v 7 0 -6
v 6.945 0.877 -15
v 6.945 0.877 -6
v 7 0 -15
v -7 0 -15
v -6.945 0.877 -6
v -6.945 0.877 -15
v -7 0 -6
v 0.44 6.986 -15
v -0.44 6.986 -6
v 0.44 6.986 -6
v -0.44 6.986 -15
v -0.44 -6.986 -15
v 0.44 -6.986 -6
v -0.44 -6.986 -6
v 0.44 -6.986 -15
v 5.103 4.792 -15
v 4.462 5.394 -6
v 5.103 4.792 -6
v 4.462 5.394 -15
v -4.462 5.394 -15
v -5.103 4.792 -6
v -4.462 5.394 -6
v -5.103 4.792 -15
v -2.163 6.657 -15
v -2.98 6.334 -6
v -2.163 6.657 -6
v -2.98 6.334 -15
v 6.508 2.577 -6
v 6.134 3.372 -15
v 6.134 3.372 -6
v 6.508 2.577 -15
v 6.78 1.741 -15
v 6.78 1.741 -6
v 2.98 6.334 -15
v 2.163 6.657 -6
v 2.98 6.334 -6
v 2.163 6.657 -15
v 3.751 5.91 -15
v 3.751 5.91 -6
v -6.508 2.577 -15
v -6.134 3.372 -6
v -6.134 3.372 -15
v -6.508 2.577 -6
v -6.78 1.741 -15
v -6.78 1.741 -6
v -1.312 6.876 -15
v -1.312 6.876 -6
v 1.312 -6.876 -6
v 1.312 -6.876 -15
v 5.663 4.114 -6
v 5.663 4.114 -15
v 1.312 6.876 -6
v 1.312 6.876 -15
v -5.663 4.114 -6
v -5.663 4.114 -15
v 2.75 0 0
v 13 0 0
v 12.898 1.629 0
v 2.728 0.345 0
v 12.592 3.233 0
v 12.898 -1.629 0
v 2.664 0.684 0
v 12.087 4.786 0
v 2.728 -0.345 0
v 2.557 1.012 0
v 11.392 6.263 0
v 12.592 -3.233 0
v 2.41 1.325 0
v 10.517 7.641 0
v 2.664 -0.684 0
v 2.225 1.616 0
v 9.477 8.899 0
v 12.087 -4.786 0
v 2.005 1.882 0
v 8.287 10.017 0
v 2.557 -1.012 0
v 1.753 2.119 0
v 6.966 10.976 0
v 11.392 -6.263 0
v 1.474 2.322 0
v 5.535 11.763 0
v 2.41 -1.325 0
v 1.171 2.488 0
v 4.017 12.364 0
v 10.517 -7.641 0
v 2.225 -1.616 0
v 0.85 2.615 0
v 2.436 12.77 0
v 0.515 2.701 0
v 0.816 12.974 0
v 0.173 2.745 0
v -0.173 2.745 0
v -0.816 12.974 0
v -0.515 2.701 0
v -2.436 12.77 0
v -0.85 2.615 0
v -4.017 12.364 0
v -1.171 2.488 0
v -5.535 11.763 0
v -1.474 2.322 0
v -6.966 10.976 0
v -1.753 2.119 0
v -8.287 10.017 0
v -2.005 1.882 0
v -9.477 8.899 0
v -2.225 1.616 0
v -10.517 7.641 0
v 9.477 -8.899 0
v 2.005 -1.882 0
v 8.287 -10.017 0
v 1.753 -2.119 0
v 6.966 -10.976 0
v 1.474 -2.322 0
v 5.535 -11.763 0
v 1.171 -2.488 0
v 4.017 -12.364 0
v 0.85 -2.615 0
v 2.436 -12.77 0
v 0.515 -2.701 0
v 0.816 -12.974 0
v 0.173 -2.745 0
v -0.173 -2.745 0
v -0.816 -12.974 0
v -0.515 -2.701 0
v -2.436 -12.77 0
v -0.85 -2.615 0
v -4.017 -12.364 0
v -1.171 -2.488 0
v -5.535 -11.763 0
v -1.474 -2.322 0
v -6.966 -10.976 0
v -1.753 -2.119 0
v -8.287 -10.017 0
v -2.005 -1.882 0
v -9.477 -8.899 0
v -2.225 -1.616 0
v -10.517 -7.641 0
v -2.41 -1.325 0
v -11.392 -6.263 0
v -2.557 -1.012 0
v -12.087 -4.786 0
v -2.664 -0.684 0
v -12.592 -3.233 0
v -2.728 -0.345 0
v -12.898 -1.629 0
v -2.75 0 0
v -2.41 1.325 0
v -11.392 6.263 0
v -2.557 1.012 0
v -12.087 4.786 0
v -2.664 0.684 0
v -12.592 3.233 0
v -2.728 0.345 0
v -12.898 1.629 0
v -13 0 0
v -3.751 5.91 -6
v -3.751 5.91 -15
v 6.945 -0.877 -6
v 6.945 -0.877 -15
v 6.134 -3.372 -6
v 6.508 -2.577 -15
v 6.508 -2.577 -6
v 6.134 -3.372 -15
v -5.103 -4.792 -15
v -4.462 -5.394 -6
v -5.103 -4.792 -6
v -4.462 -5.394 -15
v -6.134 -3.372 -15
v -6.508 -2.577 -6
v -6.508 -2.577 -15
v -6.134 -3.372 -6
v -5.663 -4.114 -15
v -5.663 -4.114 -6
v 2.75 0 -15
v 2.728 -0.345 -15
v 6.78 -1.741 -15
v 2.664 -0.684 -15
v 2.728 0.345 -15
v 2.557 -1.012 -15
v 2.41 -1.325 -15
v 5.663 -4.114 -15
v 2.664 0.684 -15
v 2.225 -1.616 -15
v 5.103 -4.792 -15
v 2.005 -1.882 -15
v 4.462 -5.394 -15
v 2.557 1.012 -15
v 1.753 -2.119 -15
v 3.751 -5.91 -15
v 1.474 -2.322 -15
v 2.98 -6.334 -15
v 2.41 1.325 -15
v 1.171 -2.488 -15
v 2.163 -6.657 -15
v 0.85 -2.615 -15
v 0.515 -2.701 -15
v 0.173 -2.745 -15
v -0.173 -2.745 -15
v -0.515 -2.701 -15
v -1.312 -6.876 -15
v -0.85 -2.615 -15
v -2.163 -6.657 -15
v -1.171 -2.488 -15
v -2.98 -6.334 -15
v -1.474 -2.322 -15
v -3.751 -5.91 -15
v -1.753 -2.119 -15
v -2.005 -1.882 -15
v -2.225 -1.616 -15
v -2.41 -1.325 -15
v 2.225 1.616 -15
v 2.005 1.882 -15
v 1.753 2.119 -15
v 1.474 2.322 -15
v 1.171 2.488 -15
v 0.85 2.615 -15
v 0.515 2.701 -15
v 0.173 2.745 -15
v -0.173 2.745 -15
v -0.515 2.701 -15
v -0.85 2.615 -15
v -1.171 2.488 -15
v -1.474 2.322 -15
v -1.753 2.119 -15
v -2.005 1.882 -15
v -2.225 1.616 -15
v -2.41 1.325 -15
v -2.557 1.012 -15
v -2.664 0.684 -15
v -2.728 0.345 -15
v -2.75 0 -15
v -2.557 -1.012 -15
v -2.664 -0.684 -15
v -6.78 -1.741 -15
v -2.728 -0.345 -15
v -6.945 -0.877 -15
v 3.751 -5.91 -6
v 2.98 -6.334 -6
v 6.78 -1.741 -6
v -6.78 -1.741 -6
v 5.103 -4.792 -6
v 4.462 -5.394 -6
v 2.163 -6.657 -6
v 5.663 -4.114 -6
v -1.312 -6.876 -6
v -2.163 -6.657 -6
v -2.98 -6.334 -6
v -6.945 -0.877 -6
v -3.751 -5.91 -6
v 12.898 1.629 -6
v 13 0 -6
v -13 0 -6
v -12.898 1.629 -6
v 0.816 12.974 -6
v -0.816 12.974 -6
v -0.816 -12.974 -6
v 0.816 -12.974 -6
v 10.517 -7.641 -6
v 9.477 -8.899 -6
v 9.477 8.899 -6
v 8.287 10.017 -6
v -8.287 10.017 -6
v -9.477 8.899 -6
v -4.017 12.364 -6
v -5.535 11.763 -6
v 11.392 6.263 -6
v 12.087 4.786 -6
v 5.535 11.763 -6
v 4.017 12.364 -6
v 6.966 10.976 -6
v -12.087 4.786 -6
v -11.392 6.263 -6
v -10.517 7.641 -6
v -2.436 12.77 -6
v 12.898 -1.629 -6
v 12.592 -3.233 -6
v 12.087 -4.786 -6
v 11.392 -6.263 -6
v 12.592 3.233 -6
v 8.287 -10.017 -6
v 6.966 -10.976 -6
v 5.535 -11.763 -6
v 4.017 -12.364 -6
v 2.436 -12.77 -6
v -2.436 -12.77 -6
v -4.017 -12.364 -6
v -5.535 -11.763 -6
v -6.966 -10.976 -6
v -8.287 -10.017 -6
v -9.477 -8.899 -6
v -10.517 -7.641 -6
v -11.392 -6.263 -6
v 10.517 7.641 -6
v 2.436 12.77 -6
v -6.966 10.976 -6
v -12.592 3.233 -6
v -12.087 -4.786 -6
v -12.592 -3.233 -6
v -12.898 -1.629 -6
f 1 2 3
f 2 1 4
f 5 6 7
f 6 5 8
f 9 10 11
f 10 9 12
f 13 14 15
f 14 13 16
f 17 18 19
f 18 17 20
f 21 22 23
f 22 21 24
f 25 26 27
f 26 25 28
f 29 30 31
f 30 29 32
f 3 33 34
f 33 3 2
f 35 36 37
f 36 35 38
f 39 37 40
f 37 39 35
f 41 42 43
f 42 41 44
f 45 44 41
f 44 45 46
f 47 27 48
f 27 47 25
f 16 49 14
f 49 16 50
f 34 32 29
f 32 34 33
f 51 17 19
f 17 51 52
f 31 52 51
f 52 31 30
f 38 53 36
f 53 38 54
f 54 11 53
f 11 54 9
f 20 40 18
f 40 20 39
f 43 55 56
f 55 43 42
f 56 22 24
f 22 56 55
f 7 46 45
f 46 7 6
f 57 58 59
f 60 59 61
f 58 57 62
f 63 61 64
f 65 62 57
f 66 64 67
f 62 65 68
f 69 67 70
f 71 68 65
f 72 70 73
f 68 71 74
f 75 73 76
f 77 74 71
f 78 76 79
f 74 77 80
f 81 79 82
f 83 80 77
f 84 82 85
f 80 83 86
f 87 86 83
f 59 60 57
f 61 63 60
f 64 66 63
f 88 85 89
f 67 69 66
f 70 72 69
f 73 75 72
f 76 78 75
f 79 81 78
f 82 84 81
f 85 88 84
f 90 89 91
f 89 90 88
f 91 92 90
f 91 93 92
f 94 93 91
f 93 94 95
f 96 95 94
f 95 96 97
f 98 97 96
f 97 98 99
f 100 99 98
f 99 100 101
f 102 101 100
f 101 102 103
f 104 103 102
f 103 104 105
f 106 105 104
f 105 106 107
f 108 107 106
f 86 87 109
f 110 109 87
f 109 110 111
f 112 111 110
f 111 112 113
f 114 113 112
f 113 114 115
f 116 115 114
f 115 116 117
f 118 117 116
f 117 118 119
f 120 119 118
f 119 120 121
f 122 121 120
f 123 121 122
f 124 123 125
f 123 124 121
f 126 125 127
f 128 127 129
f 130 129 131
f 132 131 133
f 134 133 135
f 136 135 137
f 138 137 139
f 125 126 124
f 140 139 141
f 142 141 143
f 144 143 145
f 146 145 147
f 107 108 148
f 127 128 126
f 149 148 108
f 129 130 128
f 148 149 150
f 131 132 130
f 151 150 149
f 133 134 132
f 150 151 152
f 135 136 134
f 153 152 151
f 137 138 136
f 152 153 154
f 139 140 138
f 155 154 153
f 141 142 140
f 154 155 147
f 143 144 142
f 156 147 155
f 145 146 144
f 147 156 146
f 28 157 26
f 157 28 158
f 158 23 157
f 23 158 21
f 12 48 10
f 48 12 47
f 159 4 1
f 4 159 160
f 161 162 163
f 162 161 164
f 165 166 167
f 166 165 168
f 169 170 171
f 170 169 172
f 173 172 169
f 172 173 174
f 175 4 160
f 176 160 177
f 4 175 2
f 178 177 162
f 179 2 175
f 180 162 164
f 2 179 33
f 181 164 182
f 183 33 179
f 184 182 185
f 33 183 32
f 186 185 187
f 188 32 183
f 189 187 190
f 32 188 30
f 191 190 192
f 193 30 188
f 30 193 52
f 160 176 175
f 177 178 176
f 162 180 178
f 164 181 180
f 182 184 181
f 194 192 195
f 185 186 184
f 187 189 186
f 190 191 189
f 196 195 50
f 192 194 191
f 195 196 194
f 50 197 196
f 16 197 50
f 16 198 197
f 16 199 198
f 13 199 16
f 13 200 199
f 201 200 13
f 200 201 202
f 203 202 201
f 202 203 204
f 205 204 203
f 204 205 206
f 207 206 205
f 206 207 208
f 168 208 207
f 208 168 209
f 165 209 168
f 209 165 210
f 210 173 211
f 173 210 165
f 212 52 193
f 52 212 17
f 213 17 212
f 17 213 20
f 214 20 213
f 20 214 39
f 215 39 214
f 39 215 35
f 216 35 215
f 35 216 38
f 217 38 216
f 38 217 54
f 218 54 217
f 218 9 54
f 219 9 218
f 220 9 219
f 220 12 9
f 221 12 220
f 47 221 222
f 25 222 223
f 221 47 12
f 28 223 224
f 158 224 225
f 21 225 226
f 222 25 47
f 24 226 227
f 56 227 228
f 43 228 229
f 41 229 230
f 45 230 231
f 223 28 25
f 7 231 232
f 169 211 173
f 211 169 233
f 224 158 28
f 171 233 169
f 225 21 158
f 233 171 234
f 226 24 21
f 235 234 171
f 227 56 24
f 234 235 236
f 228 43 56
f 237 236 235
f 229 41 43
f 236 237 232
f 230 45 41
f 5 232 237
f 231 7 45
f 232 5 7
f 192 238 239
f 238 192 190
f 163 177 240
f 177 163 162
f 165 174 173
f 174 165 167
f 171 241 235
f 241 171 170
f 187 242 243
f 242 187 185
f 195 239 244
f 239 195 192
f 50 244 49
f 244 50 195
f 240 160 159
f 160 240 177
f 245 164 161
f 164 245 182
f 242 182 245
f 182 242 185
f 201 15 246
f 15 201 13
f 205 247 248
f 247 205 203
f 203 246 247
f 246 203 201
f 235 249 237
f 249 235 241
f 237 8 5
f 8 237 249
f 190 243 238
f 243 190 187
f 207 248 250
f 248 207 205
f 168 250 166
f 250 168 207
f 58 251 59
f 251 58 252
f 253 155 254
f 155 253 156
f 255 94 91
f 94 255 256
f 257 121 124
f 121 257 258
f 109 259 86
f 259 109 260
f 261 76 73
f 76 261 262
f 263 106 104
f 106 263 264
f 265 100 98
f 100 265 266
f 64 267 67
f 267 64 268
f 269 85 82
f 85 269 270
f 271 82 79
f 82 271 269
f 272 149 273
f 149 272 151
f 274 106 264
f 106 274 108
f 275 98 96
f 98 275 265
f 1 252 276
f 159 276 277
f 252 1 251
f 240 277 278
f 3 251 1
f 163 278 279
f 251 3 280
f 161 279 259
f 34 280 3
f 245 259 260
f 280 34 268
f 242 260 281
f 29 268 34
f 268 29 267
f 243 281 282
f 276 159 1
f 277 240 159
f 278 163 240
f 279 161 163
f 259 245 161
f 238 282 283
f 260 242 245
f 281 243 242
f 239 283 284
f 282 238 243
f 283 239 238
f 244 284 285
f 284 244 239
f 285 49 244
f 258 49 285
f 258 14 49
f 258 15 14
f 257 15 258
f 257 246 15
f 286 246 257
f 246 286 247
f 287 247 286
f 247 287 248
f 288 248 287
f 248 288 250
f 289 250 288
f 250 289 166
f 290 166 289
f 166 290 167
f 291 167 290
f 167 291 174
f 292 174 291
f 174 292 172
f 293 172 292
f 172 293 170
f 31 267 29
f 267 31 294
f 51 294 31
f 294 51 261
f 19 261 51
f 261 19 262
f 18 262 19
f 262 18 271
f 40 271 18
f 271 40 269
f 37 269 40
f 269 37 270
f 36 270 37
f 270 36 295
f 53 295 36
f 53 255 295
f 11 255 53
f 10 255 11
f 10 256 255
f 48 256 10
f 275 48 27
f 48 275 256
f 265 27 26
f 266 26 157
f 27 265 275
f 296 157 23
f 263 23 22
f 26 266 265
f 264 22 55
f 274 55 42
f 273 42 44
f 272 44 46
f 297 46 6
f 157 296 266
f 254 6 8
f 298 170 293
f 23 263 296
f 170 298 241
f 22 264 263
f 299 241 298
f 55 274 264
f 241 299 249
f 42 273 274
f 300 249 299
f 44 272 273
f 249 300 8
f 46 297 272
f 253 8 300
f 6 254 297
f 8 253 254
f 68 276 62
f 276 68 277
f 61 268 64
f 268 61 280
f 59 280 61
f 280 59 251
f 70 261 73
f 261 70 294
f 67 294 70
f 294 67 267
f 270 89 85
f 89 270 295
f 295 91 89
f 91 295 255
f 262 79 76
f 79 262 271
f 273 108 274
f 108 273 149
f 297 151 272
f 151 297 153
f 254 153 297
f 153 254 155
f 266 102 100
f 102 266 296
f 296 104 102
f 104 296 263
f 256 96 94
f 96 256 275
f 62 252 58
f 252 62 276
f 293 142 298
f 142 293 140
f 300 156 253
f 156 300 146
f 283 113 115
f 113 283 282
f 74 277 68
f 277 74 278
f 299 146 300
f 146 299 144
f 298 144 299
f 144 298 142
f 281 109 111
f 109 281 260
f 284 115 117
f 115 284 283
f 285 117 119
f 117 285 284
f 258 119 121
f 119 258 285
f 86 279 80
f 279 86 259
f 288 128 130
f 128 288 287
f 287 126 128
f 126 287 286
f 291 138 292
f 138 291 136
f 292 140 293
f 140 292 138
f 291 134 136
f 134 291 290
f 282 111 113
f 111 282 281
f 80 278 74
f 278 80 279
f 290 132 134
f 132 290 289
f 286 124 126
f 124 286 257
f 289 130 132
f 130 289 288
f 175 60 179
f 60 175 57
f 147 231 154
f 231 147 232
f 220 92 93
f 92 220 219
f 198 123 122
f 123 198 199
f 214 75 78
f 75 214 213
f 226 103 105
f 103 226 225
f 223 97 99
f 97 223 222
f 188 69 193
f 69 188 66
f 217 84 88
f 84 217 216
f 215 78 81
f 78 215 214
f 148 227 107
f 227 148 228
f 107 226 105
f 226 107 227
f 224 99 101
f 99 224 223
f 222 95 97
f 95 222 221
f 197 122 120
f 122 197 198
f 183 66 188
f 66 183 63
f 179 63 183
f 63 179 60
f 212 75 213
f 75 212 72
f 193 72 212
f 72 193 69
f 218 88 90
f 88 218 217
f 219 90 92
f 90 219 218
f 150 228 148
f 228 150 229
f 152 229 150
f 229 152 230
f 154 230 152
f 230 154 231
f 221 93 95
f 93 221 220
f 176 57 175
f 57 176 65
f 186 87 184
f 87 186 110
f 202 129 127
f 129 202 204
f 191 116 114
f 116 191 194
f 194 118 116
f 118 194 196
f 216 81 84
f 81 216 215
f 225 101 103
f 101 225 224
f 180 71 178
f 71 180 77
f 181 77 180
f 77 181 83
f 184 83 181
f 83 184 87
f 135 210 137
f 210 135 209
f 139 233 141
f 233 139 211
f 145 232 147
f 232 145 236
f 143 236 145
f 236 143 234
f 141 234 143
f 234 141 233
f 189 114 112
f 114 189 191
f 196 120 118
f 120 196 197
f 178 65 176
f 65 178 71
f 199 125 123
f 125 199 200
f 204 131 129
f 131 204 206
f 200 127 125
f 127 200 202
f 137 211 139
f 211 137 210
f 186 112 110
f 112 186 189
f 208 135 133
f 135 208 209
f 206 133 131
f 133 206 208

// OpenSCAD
$fn = 50;


difference() {
	union() {
		translate(v = [0, 0, -15.0000000000]) {
			cylinder(h = 15, r = 7.0000000000);
		}
		translate(v = [0, 0, -6.0000000000]) {
			cylinder(h = 6, r = 13.0000000000);
		}
	}
	union() {
		#translate(v = [0, 0, -15]) {
			cylinder(h = 15, r = 2.7500000000);
		}
	}
}
